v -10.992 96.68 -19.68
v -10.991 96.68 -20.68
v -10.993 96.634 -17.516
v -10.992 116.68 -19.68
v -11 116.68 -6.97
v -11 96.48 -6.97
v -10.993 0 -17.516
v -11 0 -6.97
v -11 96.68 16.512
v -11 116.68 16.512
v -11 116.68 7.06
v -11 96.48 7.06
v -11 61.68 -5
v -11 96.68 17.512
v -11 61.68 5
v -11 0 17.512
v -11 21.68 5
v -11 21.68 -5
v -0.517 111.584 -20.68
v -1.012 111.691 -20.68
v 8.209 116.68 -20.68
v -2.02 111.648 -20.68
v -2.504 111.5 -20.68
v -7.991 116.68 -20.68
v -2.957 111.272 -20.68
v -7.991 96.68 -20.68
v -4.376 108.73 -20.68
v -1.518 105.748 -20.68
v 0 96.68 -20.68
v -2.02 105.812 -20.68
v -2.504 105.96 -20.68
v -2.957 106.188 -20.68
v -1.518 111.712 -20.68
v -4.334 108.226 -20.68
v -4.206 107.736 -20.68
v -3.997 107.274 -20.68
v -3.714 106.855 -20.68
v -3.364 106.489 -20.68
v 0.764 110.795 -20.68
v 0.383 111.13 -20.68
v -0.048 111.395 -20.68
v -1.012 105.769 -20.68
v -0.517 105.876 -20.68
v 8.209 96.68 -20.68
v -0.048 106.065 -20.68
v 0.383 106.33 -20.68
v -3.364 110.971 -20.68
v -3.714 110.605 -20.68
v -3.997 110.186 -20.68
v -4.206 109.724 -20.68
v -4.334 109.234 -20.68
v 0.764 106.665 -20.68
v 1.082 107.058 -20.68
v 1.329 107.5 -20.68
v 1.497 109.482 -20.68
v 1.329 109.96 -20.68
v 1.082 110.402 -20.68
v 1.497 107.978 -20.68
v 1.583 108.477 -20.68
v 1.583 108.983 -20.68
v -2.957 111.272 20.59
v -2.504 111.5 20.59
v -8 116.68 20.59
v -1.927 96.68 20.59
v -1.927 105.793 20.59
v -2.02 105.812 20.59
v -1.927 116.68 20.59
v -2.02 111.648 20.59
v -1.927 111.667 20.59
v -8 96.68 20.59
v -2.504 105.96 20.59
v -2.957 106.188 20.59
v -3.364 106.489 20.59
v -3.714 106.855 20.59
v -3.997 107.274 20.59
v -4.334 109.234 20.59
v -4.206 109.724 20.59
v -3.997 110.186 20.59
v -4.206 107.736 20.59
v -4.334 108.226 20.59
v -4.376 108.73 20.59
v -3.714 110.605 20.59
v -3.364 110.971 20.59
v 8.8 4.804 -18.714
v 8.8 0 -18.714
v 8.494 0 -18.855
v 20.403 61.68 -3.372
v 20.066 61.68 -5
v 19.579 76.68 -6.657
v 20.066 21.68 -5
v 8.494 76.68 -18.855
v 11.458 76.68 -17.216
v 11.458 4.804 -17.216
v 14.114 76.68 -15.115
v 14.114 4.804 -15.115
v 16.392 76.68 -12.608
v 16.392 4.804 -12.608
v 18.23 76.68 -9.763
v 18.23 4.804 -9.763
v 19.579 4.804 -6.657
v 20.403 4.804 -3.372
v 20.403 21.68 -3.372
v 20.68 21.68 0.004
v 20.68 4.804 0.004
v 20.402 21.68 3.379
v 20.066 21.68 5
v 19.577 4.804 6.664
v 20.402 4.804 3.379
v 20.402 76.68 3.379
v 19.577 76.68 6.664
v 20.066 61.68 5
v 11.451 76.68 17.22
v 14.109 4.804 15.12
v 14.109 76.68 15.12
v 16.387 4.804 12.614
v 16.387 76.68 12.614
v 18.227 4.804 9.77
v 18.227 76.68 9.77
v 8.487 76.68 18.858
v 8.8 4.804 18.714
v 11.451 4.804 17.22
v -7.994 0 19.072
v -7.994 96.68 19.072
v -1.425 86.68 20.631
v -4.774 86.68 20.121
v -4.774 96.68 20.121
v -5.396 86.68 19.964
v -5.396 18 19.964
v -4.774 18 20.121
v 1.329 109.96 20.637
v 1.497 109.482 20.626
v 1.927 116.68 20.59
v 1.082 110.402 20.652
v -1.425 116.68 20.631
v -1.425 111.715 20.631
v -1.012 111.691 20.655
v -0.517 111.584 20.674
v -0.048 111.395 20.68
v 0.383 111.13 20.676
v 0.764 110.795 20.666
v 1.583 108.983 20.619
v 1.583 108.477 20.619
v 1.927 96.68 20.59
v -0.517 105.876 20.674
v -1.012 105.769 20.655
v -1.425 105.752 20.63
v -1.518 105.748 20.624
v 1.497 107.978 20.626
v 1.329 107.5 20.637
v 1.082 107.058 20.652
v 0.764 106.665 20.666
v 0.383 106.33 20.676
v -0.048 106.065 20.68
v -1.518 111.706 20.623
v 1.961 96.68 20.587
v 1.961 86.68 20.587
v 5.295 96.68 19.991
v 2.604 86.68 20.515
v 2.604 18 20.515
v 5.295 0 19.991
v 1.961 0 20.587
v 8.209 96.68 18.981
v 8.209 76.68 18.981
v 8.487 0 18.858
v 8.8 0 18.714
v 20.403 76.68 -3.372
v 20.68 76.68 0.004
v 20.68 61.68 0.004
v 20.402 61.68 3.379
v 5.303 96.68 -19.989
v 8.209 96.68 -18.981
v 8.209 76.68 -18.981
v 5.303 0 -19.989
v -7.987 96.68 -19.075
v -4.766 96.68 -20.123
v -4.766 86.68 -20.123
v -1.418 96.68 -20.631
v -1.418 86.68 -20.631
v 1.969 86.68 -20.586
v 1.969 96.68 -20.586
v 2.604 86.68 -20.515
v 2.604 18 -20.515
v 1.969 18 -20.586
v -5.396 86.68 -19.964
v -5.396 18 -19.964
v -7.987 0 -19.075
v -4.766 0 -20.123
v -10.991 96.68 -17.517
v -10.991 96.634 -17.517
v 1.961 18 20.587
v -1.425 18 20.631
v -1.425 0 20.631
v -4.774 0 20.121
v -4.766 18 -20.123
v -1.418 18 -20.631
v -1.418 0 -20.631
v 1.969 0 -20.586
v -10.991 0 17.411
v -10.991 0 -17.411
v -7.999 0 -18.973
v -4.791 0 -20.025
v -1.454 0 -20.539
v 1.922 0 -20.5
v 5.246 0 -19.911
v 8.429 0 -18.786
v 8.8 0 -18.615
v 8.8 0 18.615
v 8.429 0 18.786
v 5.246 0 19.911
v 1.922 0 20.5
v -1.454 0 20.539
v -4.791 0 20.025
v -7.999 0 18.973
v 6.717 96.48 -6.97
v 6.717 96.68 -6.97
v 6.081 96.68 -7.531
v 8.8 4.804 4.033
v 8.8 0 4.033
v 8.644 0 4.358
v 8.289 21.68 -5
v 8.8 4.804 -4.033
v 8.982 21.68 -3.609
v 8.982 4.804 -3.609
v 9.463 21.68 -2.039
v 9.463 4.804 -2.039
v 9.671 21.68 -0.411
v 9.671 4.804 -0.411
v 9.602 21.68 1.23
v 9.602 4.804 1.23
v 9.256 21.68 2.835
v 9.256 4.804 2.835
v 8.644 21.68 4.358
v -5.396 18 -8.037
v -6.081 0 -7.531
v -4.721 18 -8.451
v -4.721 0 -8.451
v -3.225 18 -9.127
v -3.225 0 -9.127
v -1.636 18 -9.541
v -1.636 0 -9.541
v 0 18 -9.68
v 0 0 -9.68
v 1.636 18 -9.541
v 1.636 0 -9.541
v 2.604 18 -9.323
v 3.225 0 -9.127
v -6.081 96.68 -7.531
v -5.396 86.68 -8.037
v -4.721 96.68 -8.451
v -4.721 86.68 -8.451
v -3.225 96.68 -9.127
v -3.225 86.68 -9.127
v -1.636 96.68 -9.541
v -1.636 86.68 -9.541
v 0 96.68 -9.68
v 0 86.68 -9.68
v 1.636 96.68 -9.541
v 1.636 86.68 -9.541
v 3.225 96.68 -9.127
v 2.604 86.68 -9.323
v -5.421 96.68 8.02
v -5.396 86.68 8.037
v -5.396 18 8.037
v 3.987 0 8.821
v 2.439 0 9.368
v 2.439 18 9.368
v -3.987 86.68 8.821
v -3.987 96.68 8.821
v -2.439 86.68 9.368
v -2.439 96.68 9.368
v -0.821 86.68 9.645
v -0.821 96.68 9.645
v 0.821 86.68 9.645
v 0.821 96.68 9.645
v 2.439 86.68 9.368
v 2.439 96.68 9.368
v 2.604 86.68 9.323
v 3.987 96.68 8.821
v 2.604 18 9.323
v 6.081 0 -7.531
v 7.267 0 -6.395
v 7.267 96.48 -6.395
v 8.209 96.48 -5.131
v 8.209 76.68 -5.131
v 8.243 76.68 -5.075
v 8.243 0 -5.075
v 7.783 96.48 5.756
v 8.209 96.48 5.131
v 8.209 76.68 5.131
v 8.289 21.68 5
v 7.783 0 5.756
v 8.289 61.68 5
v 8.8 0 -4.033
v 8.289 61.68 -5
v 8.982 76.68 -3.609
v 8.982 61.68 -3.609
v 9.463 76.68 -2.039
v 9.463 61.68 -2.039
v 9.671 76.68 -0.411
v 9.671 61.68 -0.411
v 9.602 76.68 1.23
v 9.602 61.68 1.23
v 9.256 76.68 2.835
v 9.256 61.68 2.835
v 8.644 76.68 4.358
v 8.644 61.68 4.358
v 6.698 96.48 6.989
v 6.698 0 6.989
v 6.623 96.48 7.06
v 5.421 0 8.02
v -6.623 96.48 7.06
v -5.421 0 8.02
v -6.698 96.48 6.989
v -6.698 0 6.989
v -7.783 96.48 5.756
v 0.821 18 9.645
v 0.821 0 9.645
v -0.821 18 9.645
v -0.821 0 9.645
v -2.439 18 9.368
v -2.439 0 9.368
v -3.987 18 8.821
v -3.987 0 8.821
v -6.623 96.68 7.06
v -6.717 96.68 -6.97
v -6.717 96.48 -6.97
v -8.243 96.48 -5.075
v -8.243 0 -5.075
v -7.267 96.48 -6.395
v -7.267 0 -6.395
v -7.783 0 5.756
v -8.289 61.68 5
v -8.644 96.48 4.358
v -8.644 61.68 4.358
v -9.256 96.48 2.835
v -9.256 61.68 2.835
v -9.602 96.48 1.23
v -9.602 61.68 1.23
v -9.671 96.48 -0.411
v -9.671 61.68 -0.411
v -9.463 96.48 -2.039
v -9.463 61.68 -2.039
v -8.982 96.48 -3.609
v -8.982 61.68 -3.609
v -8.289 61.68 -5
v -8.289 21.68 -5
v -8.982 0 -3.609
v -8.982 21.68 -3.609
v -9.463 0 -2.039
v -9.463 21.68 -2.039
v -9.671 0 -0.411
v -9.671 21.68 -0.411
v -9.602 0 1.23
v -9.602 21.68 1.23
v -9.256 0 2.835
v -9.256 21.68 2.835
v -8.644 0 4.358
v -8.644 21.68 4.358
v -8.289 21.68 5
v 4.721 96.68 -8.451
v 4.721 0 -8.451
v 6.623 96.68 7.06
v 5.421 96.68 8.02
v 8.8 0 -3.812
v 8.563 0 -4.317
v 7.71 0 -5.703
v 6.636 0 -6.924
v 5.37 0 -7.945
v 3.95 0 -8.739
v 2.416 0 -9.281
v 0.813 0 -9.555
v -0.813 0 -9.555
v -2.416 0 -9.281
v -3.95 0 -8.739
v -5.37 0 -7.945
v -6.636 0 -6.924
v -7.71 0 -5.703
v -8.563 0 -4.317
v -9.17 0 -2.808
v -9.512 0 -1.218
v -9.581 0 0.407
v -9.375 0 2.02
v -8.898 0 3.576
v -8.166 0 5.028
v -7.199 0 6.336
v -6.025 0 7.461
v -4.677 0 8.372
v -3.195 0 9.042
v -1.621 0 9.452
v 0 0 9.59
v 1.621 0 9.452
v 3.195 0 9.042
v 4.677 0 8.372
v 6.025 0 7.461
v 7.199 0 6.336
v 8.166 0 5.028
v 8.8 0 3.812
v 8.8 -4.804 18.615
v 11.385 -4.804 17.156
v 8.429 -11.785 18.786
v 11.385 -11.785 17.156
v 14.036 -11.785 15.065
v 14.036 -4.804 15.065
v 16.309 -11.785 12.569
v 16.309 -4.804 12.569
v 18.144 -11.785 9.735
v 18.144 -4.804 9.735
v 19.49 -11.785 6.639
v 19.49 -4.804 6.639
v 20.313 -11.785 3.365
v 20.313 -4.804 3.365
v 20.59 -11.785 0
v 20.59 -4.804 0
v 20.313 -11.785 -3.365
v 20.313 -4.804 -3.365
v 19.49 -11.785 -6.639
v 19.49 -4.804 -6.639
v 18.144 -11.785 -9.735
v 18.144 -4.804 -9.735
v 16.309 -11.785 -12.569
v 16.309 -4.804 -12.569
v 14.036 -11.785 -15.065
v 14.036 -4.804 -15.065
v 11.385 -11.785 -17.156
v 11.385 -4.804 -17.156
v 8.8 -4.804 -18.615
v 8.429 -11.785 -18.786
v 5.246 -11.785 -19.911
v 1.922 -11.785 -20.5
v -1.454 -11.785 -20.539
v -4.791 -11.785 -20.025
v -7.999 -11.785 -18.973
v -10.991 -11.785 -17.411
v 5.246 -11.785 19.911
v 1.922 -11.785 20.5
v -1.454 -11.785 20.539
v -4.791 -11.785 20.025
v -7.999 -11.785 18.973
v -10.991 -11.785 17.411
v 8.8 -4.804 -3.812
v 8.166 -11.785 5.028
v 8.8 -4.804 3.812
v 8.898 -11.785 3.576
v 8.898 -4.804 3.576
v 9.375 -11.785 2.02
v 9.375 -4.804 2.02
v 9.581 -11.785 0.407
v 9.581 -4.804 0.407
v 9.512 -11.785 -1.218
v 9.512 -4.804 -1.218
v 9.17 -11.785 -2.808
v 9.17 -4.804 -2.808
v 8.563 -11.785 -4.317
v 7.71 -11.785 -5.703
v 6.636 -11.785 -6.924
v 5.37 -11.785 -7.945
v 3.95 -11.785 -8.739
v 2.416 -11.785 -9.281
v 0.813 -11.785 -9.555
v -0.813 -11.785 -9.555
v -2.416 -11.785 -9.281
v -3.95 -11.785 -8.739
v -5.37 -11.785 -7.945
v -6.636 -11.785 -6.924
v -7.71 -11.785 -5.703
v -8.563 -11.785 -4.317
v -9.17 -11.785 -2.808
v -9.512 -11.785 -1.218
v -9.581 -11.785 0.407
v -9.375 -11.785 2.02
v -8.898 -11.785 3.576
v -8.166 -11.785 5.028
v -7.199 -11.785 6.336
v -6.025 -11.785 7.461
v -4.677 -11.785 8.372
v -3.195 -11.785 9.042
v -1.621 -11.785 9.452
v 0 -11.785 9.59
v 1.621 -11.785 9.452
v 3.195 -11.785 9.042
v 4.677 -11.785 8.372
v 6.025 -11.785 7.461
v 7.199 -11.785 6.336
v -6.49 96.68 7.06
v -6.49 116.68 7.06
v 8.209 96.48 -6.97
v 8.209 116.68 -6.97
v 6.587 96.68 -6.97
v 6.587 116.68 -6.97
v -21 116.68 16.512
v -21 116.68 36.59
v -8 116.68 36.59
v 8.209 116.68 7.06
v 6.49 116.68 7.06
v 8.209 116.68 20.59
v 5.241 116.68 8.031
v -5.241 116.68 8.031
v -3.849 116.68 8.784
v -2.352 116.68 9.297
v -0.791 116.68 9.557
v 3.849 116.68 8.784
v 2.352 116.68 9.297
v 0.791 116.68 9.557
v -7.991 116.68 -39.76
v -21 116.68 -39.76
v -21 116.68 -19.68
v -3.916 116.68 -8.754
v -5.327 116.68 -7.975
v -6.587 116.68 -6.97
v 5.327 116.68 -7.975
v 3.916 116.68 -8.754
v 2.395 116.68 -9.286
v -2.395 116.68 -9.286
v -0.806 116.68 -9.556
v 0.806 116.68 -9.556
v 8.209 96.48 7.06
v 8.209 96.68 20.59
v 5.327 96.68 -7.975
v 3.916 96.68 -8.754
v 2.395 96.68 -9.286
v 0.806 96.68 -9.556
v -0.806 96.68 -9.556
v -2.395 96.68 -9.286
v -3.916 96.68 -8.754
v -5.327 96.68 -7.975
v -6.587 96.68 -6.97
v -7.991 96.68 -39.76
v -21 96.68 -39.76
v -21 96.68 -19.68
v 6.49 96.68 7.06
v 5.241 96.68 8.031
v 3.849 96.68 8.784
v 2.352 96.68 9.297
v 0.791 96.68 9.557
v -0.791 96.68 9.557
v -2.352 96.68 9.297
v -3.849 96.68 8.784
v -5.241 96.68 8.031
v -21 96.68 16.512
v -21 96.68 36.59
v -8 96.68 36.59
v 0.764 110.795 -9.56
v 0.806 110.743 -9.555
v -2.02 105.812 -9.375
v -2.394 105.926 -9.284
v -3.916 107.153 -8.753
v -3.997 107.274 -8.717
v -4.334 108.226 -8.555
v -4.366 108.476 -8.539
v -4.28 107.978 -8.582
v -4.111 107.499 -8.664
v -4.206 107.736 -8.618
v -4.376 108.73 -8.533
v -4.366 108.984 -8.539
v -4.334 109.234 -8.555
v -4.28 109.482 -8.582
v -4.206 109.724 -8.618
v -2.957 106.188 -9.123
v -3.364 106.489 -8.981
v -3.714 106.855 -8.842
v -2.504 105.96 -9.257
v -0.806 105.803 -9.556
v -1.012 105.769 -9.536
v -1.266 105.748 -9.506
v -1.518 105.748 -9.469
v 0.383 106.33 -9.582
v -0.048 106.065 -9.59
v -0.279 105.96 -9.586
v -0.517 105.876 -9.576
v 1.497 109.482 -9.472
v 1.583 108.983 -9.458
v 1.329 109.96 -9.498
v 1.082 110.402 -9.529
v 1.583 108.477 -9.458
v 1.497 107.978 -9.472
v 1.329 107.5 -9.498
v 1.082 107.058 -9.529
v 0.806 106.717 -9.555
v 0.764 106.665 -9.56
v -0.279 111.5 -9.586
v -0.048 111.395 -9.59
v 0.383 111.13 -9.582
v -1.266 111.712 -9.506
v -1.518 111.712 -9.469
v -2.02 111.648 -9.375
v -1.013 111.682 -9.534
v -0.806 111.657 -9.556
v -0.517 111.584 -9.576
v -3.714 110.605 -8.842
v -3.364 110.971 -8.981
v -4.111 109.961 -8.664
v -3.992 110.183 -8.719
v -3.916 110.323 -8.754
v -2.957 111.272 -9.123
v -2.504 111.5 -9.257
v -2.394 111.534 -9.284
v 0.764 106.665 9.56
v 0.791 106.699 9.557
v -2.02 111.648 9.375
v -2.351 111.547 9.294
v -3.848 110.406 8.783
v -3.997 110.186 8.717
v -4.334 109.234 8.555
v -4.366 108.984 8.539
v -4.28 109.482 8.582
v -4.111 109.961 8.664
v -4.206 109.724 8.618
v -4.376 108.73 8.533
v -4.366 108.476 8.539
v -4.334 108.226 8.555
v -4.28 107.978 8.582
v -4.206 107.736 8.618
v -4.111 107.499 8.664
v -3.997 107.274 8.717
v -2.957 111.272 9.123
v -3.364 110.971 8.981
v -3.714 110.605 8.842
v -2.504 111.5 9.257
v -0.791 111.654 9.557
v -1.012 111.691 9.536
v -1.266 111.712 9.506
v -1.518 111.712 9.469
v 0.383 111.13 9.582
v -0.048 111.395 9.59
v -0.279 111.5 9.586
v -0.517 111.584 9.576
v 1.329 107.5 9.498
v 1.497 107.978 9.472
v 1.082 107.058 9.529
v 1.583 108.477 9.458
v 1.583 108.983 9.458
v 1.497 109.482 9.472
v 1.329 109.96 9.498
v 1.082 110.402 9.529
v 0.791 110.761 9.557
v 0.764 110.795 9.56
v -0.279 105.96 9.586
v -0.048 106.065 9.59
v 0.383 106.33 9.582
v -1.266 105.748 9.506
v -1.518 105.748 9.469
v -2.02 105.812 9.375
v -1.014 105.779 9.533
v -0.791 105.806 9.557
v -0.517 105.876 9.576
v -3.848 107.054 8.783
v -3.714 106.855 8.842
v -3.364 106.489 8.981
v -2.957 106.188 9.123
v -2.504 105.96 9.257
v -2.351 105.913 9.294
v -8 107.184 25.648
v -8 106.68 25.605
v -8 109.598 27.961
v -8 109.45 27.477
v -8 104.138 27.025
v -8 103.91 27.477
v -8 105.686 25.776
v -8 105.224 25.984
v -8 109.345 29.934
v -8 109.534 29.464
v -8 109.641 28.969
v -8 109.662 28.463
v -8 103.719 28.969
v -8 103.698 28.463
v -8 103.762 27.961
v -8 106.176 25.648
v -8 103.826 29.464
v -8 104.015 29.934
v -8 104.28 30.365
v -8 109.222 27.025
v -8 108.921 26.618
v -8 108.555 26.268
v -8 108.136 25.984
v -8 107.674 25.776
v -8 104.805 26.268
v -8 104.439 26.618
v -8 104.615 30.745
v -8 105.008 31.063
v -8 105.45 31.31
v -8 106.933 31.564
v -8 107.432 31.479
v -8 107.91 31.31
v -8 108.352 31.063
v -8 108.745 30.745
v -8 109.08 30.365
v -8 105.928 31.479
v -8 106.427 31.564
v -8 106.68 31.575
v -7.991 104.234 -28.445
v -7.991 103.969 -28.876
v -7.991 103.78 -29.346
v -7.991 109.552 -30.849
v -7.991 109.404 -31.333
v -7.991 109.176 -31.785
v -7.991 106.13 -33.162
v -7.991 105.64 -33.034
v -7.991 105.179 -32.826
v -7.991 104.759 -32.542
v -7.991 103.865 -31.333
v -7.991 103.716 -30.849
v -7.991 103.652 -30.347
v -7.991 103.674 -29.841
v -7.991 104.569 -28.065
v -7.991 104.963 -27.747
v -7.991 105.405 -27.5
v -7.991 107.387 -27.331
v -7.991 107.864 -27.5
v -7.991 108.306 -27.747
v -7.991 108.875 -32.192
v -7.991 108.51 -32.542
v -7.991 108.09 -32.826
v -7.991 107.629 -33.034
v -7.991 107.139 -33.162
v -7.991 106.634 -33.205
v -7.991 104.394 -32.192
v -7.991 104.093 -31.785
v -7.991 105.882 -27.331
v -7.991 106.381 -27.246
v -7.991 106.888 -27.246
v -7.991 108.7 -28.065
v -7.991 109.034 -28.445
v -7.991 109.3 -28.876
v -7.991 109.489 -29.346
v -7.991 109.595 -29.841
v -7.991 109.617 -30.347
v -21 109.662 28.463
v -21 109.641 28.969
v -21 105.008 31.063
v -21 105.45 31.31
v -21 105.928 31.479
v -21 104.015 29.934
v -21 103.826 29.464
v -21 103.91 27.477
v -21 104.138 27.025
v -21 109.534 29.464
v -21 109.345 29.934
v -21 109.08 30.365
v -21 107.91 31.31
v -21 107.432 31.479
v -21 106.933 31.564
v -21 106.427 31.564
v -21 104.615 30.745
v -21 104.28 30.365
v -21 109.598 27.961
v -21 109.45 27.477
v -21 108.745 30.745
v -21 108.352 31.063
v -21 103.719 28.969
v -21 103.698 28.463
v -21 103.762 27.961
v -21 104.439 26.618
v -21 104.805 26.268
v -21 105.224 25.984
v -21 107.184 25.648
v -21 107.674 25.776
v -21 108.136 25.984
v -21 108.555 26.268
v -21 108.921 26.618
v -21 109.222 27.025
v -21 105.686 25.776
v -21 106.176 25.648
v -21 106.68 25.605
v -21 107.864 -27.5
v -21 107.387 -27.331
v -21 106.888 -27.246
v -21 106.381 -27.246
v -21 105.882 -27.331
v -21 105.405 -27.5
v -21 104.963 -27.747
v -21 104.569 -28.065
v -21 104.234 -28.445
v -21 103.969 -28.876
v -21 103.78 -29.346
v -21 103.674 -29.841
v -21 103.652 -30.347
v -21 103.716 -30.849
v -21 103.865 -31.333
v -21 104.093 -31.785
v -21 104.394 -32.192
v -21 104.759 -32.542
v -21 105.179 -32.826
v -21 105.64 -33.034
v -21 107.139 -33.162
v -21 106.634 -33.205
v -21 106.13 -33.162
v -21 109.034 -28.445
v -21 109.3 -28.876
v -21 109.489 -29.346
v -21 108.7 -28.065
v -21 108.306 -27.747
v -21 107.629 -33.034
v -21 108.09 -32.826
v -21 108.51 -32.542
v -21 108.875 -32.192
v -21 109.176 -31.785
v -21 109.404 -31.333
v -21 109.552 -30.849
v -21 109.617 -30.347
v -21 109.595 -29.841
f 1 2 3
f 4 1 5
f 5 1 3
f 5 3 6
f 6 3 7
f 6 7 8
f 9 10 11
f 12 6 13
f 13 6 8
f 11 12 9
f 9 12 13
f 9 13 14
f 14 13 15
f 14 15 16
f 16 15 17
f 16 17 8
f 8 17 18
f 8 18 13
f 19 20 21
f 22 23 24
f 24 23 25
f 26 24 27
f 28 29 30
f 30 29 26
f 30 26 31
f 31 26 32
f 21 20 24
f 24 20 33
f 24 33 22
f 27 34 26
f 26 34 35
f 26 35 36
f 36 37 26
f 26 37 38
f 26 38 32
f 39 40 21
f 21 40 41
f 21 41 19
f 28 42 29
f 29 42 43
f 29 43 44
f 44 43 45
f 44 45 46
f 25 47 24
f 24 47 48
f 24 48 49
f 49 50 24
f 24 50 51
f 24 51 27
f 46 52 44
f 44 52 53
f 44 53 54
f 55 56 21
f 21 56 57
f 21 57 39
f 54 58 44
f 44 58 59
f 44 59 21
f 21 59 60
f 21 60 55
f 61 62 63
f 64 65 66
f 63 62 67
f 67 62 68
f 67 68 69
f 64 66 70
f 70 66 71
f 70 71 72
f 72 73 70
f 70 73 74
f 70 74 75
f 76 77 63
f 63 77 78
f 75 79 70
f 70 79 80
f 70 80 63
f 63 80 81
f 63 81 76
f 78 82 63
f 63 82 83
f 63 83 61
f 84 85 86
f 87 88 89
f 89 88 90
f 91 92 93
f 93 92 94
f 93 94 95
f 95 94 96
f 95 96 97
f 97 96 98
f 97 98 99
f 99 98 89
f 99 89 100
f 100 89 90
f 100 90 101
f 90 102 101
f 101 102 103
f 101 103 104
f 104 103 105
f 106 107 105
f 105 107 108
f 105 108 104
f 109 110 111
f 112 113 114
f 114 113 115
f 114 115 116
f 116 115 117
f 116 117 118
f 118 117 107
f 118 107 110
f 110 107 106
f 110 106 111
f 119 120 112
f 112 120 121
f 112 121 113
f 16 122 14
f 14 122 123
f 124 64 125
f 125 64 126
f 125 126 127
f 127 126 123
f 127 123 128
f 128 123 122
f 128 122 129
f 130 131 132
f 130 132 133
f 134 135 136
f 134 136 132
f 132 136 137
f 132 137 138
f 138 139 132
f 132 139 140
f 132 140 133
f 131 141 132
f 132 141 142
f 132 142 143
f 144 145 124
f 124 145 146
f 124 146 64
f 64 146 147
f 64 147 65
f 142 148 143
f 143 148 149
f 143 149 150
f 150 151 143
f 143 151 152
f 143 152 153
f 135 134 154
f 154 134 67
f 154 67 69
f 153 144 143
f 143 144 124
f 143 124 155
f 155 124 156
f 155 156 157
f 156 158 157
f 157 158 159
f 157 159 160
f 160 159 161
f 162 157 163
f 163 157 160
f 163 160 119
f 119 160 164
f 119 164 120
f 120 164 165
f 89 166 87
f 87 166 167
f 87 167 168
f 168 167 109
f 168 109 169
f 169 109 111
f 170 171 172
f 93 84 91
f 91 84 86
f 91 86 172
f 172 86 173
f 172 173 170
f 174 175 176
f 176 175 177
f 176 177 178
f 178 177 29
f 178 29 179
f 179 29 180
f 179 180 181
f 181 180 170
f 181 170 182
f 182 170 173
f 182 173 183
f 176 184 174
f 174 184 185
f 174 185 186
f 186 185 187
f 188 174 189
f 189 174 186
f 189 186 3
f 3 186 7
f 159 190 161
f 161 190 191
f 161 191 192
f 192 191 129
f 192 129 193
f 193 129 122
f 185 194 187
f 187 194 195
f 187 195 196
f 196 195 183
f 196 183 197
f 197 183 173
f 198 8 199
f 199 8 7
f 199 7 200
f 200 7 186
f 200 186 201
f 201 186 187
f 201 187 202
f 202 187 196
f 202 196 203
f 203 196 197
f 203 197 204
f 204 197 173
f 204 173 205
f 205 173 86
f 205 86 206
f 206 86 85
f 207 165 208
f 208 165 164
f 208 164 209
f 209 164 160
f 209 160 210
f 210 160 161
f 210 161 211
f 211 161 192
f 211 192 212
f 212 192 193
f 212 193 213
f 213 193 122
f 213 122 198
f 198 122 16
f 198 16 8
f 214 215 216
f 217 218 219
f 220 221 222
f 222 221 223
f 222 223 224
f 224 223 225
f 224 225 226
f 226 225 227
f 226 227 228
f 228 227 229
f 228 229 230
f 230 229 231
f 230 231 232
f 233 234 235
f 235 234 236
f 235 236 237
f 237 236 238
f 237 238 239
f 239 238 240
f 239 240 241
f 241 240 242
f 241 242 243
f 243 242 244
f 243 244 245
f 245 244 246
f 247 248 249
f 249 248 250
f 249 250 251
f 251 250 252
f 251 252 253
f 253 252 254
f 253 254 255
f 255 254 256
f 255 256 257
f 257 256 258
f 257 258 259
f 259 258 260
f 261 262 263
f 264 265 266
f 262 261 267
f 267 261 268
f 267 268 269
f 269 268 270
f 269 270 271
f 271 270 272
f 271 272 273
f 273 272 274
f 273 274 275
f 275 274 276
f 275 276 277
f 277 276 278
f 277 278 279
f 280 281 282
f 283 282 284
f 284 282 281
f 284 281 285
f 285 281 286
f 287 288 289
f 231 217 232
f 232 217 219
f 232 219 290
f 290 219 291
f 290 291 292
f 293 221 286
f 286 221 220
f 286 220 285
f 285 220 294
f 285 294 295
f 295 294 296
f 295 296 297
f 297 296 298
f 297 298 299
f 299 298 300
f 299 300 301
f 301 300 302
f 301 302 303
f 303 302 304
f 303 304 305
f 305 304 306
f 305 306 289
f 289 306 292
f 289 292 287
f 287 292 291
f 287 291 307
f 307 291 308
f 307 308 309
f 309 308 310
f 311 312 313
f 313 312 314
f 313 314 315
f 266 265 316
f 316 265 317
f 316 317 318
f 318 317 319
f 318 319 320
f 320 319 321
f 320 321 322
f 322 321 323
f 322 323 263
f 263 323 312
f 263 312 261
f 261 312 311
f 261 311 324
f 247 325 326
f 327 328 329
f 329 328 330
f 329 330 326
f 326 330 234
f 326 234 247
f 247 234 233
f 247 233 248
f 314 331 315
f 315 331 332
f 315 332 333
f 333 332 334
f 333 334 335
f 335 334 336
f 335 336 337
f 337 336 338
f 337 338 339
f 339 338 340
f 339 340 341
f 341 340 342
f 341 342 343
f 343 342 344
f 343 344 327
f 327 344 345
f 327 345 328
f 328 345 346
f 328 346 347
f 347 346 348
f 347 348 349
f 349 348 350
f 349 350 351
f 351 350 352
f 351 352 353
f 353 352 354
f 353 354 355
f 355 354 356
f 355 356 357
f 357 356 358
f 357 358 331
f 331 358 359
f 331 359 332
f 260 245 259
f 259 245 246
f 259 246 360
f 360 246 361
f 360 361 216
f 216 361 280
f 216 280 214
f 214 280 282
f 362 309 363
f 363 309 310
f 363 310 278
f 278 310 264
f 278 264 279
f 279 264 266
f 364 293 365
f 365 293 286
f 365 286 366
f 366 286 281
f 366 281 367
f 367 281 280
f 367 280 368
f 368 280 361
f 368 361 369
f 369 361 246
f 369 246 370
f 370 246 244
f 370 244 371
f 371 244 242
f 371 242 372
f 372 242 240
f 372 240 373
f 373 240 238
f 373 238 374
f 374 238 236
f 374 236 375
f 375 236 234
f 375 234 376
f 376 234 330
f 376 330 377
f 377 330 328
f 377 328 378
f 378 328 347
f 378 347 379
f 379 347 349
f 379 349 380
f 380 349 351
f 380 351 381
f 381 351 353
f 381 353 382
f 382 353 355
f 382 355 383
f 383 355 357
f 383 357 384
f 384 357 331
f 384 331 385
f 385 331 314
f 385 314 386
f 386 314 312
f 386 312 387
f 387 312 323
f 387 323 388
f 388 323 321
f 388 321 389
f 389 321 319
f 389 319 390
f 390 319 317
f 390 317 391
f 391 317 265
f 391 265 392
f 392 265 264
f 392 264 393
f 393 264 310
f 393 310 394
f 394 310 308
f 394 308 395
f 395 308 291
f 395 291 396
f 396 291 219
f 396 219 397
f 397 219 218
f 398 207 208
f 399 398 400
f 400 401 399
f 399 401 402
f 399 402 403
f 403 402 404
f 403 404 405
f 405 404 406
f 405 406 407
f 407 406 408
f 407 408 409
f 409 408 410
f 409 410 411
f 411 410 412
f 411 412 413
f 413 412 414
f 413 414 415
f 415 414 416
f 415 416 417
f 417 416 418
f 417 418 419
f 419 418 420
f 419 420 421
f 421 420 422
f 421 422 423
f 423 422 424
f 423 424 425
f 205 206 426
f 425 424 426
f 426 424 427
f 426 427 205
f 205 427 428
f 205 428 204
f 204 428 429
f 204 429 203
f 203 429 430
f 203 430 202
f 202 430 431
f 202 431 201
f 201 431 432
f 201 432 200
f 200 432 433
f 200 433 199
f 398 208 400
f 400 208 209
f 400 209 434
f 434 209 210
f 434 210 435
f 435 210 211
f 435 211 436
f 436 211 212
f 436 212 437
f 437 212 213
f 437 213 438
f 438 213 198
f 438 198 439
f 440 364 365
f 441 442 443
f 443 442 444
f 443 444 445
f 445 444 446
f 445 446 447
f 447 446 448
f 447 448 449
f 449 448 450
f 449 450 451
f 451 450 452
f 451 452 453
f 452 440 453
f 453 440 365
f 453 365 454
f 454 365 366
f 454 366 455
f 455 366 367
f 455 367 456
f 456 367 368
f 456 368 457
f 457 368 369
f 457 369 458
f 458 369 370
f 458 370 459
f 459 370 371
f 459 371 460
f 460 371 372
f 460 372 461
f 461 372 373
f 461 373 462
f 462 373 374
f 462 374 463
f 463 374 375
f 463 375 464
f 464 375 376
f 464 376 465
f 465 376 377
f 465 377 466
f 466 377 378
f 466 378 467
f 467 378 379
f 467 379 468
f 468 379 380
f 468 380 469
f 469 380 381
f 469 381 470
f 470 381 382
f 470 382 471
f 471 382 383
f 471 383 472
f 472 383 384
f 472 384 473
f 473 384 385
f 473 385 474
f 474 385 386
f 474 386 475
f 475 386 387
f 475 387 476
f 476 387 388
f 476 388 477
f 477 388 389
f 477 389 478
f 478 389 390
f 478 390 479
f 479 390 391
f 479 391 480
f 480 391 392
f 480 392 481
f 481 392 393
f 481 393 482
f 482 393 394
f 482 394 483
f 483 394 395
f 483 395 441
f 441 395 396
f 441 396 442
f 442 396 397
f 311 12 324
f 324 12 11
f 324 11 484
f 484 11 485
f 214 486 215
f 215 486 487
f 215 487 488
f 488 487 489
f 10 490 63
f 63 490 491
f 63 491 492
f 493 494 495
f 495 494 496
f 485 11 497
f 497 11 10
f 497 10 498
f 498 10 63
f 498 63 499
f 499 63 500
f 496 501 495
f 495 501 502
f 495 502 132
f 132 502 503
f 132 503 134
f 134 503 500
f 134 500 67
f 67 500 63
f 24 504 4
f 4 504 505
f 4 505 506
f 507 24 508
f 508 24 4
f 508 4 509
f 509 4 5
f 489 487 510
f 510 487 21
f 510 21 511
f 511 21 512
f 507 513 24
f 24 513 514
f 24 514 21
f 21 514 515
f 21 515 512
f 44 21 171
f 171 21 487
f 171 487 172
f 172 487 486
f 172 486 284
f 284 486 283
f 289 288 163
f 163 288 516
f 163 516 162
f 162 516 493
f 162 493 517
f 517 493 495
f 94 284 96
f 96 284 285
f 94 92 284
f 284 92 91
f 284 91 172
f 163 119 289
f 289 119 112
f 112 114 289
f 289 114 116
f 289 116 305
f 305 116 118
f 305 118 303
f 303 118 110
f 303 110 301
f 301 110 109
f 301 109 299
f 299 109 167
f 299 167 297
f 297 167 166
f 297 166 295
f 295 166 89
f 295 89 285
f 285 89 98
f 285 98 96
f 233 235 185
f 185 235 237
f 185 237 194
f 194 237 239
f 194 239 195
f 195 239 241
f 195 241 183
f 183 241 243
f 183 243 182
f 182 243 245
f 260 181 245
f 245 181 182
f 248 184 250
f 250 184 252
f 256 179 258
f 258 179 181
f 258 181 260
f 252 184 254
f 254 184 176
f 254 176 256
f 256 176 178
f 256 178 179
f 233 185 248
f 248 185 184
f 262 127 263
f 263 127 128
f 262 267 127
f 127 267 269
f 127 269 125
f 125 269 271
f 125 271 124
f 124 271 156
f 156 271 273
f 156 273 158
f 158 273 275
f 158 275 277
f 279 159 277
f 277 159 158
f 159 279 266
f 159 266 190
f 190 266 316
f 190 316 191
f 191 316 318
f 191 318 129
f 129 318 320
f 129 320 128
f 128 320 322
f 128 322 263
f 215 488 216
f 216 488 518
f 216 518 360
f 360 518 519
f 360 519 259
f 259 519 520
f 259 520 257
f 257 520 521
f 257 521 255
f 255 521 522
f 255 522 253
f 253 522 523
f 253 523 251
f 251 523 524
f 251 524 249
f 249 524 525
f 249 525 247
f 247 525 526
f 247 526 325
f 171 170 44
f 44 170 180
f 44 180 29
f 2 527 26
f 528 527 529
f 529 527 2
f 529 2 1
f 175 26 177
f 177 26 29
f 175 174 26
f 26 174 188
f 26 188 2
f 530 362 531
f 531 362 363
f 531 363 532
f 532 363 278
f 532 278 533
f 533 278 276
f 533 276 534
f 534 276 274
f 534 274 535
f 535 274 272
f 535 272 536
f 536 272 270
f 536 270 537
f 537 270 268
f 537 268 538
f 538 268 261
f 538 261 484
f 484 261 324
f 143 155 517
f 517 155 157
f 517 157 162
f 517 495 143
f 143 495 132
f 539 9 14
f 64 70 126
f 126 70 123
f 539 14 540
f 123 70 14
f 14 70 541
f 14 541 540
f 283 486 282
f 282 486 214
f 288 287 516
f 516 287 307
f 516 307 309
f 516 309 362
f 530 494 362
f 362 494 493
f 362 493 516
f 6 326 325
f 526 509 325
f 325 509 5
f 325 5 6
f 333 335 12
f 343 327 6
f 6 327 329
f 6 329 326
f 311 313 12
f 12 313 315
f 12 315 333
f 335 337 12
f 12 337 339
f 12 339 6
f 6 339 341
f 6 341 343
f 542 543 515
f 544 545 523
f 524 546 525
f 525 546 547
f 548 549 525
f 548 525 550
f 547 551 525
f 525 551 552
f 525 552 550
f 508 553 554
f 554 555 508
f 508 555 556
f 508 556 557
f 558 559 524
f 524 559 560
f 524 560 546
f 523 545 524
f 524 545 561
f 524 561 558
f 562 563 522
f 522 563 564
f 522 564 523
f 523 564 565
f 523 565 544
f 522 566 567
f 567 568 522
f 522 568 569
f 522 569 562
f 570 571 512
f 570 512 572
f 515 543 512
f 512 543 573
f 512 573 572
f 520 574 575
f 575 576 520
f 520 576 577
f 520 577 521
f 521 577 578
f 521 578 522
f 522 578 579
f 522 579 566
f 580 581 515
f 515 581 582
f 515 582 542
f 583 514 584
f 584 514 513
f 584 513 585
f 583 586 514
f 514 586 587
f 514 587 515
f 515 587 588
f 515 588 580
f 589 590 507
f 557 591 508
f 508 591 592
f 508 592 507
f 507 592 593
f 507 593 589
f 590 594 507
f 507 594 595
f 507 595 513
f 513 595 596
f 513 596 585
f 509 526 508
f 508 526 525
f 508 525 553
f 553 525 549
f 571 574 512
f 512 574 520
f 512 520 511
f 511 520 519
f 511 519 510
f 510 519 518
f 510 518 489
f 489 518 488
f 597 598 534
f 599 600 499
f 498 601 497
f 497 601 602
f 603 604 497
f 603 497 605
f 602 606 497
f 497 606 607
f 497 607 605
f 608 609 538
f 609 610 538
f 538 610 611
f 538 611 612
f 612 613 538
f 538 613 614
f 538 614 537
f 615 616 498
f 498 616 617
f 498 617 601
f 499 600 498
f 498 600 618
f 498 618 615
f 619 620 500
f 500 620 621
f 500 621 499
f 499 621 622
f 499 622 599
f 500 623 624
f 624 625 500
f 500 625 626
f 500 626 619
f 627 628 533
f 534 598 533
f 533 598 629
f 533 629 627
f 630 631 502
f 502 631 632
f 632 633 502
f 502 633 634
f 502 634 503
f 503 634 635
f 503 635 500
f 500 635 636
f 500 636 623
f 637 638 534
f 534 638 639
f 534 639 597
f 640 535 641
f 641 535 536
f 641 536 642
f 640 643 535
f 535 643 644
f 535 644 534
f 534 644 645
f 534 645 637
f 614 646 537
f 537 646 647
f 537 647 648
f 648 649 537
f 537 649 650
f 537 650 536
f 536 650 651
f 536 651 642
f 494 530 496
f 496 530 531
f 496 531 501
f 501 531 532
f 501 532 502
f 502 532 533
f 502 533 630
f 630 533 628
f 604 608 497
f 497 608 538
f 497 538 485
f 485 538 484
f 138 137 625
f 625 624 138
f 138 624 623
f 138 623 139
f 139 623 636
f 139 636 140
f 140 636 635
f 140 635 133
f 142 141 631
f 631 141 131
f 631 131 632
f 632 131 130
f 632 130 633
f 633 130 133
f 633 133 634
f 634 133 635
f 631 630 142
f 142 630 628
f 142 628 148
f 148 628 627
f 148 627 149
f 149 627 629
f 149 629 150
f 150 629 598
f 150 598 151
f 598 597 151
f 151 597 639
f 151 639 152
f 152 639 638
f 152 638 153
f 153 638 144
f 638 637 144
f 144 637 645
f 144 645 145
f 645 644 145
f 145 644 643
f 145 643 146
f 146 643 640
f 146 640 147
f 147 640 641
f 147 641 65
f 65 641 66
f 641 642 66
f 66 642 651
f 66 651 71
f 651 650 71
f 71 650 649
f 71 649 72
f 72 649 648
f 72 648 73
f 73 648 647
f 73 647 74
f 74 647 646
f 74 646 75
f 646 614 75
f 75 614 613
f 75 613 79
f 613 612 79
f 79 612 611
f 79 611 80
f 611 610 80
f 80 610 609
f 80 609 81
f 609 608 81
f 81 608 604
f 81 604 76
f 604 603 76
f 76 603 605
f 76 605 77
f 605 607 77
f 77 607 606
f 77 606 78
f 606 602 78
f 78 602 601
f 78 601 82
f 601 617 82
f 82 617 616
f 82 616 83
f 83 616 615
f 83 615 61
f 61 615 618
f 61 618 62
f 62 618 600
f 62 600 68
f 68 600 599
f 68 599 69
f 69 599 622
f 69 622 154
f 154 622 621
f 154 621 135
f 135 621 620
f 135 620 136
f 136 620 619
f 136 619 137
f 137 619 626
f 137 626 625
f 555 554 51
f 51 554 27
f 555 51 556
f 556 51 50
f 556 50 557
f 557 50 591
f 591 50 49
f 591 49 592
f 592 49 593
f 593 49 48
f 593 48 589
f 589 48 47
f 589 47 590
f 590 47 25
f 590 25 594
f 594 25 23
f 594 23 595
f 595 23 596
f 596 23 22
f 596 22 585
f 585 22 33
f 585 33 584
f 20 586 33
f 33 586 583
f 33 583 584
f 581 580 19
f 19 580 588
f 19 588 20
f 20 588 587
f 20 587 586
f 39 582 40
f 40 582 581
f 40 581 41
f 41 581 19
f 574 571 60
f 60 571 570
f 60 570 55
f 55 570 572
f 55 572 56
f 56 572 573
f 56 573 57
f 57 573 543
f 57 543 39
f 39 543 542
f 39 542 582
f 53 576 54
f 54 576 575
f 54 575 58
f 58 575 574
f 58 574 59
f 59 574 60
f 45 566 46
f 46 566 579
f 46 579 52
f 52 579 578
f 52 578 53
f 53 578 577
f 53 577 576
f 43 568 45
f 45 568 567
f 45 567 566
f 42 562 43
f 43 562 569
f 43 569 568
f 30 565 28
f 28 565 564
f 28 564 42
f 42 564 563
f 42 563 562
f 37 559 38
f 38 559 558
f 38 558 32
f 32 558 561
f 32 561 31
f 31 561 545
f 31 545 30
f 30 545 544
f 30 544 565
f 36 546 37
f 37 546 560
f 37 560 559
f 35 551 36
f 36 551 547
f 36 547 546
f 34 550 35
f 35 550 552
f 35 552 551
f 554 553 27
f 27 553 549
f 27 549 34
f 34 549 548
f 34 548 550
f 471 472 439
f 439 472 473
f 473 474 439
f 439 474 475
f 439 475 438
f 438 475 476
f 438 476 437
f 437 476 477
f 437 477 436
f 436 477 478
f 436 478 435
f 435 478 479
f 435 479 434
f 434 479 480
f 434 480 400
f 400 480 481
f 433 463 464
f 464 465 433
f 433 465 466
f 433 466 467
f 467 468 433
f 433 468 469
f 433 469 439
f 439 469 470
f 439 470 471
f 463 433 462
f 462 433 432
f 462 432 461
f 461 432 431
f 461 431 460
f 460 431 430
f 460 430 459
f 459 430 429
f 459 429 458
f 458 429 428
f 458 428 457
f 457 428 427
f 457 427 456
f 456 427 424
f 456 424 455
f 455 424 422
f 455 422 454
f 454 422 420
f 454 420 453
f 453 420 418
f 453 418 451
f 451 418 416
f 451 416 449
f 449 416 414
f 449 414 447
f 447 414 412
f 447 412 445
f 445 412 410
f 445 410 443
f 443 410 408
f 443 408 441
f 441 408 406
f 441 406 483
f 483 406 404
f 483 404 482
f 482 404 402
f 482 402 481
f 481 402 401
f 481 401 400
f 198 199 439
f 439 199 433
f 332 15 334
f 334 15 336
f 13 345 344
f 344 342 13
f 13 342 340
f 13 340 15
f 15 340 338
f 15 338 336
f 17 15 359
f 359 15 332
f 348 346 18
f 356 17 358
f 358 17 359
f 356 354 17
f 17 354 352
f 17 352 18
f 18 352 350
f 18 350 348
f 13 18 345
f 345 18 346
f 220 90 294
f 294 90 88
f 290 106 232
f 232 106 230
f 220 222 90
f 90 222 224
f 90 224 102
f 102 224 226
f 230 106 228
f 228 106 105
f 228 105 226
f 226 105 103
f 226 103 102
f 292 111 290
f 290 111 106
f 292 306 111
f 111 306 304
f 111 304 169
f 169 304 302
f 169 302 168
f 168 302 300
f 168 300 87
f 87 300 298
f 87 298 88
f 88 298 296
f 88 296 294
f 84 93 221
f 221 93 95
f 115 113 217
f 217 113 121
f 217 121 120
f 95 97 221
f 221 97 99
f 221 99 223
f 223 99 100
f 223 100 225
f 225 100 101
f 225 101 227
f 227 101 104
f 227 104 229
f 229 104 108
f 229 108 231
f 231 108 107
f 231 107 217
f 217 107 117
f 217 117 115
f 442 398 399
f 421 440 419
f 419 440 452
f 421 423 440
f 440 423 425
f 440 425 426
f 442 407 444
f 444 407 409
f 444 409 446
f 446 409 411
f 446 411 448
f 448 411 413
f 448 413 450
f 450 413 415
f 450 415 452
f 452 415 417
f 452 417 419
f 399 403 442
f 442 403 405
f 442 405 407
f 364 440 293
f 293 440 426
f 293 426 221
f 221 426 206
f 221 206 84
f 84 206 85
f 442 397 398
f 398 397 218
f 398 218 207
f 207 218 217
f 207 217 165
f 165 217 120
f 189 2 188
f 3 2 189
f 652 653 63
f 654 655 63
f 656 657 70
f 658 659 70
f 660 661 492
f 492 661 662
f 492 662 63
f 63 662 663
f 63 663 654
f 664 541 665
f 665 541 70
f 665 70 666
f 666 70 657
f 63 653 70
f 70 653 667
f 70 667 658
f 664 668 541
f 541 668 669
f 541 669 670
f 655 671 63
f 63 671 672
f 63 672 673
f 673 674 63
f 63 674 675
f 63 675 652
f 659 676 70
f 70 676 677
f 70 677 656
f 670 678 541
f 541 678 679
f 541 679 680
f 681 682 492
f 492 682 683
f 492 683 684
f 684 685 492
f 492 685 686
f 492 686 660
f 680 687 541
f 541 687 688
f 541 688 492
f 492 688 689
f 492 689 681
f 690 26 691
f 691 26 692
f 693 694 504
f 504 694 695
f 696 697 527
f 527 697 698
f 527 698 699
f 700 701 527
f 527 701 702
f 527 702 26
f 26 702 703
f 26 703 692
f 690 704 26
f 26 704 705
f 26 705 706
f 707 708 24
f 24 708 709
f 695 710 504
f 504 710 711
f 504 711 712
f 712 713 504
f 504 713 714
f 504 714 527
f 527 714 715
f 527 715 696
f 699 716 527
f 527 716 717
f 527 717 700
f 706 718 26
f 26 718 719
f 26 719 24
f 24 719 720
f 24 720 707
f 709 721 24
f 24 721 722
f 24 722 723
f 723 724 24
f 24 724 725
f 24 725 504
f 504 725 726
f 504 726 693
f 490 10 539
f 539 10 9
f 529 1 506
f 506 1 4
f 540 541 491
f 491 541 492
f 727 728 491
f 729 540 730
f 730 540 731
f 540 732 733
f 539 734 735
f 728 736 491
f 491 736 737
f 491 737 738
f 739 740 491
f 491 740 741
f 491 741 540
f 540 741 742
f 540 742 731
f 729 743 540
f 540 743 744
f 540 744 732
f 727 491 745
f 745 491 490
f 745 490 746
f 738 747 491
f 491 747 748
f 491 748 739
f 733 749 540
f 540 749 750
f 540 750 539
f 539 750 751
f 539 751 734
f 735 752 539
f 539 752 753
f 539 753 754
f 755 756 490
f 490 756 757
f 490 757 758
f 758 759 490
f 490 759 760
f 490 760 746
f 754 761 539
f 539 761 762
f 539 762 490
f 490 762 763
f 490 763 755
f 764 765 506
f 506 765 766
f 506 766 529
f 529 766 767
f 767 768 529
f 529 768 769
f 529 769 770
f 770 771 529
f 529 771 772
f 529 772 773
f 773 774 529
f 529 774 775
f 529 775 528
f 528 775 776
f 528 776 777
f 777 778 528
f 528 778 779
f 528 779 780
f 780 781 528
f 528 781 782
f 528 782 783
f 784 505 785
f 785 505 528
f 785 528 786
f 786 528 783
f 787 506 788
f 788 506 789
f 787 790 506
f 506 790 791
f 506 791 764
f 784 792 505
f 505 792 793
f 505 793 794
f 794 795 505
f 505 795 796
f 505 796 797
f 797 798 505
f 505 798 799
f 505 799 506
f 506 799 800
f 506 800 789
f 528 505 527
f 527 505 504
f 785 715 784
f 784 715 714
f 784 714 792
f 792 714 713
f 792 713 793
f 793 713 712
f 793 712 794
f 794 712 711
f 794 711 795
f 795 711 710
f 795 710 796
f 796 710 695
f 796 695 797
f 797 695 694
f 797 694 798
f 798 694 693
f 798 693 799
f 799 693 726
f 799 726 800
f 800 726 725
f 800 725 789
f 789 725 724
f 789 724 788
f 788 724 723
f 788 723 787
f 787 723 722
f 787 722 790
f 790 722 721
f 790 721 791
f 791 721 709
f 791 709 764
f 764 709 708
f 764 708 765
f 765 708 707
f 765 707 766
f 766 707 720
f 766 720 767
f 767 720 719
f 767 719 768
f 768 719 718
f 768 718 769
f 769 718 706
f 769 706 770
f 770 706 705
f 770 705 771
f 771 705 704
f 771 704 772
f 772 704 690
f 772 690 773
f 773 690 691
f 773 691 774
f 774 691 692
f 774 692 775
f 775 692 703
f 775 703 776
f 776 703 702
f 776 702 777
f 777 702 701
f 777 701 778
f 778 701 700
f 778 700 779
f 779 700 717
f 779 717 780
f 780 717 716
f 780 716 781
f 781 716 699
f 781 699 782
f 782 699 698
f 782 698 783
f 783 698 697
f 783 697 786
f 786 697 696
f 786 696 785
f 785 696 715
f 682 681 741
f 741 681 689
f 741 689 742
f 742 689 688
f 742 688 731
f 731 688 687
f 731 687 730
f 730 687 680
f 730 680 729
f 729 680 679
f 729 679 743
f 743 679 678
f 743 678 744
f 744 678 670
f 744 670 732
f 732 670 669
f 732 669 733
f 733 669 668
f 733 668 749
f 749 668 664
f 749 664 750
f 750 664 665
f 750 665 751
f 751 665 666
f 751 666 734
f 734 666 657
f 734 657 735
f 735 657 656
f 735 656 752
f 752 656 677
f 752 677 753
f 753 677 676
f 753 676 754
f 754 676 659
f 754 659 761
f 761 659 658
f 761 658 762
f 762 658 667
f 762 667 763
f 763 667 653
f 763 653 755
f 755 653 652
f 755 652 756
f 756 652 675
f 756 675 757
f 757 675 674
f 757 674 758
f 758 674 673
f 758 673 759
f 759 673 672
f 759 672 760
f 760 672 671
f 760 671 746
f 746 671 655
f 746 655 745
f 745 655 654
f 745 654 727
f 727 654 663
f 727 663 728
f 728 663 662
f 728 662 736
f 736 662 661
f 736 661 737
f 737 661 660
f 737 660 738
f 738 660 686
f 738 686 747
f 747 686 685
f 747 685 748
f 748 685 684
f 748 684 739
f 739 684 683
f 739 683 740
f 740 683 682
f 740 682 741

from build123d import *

# Parameters (mm, degrees)
SKETCH_1_R           = 20.68
SKETCH_1_R_2         = 9.68
EXTRUDE_1_DEPTH      = 116.68
SKETCH_11_W          = 27
SKETCH_11_H          = 150
CUT_EXTRUDE_3_DEPTH  = 40
SKETCH_13_W          = 10
SKETCH_13_H          = 128.345013401
CUT_EXTRUDE_7_DEPTH  = 126.614916312
SKETCH_15_W          = 8
SKETCH_15_H          = 68.68
CUT_EXTRUDE_9_DEPTH  = 48
SKETCH_16_W          = 15.549431524
SKETCH_16_H          = 20
SKETCH_16_W_2        = 15.459431524
EXTRUDE_4_DEPTH      = 19.2
SKETCH_17_W          = 19.20851187
SKETCH_17_H          = 14.03
CUT_EXTRUDE_10_DEPTH = 20.2
SKETCH_18_R          = 9.59
CUT_EXTRUDE_11_DEPTH = 121.289430957
SKETCH_21_R          = 2.985
CUT_EXTRUDE_12_DEPTH = 55.2
EXTRUDE_START        = 55.2
SKETCH_24_R          = 20.59
SKETCH_24_R_2        = 9.59
EXTRUDE_2_DEPTH      = 55.2
CUT_EXTRUDE_13_DEPTH = 55.2
SKETCH_26_W          = 10.00851187
SKETCH_26_H          = 41.68
CUT_EXTRUDE_15_DEPTH = 55.2
SKETCH_27_W          = 10
SKETCH_27_H          = 40
CUT_EXTRUDE_16_DEPTH = 55.2
SKETCH_28_W          = 44.880694938
SKETCH_28_H          = 9.608044066
CUT_EXTRUDE_17_DEPTH = 12.2
SKETCH_35_W          = 13.53
SKETCH_35_H          = 20
EXTRUDE_10_DEPTH     = 15
EXTRUDE_11_DEPTH     = 15
SKETCH_37_W          = 9
SKETCH_37_H          = 20
EXTRUDE_12_DEPTH     = 20
SKETCH_38_W          = 9
SKETCH_38_H          = 20
EXTRUDE_13_DEPTH     = 20
SKETCH_42_R          = 2.985
CUT_EXTRUDE_21_DEPTH = 20
CUT_EXTRUDE_23_DEPTH = 138.235841092
SKETCH_45_W          = 3
SKETCH_45_H          = 20
EXTRUDE_14_DEPTH     = 30
SKETCH_46_W          = 3
SKETCH_46_H          = 20
EXTRUDE_15_DEPTH     = 30
SKETCH_47_W          = 33.078221107
SKETCH_47_H          = 20
EXTRUDE_16_DEPTH     = 50
SKETCH_48_W          = 30
SKETCH_48_H          = 20
EXTRUDE_17_DEPTH     = 50
SKETCH_50_W          = 50
SKETCH_50_H          = 20
EXTRUDE_18_DEPTH     = 1
SKETCH_51_W          = 50
SKETCH_51_H          = 20
EXTRUDE_19_DEPTH     = 1
SKETCH_52_W          = 53
SKETCH_52_H          = 14
CUT_EXTRUDE_24_DEPTH = 151.972575738
SKETCH_53_W          = 53
SKETCH_53_H          = 14
CUT_EXTRUDE_25_DEPTH = 151.942387436
SKETCH_54_W          = 40
SKETCH_54_H          = 73.27
CUT_EXTRUDE_26_DEPTH = 147.866192927
SKETCH_56_W          = 13.00851187
SKETCH_56_H          = 20
EXTRUDE_21_DEPTH     = 3.08
SKETCH_57_R          = 2.985
CUT_EXTRUDE_27_DEPTH = 127.558817396


with BuildPart() as part:
    # 草圖1 → 伸長-薄件1 (new body)
    with BuildSketch(Plane(origin=(0, 0, 0), x_dir=(1, 0, 0), z_dir=(0, 1, 0))):
        Circle(SKETCH_1_R)
        Circle(SKETCH_1_R_2, mode=Mode.SUBTRACT)
    extrude(amount=EXTRUDE_1_DEPTH)

    # 草圖11 → 除料-伸長3 (cut)
    with BuildSketch(Plane(origin=(0, 116.68, 0), x_dir=(1, 0, 0), z_dir=(0, 1, 0))):
        with Locations((21.70851187, -44.235815192)):
            Rectangle(SKETCH_11_W, SKETCH_11_H)
    extrude(amount=-CUT_EXTRUDE_3_DEPTH, mode=Mode.SUBTRACT)

    # 草圖13 → 除料-伸長7 (cut, through all)
    with BuildSketch(Plane.XY.offset(21)):
        with Locations((-16, 58.612182466)):
            Rectangle(SKETCH_13_W, SKETCH_13_H)
    extrude(amount=-CUT_EXTRUDE_7_DEPTH, mode=Mode.SUBTRACT)

    # 草圖15 → 除料-伸長9 (cut)
    with BuildSketch(Plane.XY.offset(21)):
        with Locations((-1.395744065, 52.34)):
            Rectangle(SKETCH_15_W, SKETCH_15_H)
    extrude(amount=-CUT_EXTRUDE_9_DEPTH, mode=Mode.SUBTRACT)

    # 草圖16 → 填料-伸長4 (add)
    with BuildSketch(Plane(origin=(8.20851187, 0, 0), x_dir=(0, 0, -1), z_dir=(1, 0, 0))):
        with Locations((12.905284238, 106.68)):
            Rectangle(SKETCH_16_W, SKETCH_16_H)
        with Locations((-12.860284238, 106.68)):
            Rectangle(SKETCH_16_W_2, SKETCH_16_H)
    extrude(amount=-EXTRUDE_4_DEPTH)

    # 草圖17 → 除料-伸長10 (cut)
    with BuildSketch(Plane(origin=(0, 116.68, 0), x_dir=(1, 0, 0), z_dir=(0, 1, 0))):
        with Locations((-1.395744065, -0.045)):
            Rectangle(SKETCH_17_W, SKETCH_17_H)
    extrude(amount=-CUT_EXTRUDE_10_DEPTH, mode=Mode.SUBTRACT)

    # 草圖18 → 除料-伸長11 (cut, through all)
    with BuildSketch(Plane.XZ):
        with Locations(Location((0, 0, 0), (0, 0, 90))):
            Circle(SKETCH_18_R)
    extrude(amount=-CUT_EXTRUDE_11_DEPTH, mode=Mode.SUBTRACT)

    # 草圖21 → 除料-伸長12 (cut)
    with BuildSketch(Plane(origin=(0, 0, -20.68), x_dir=(-1, 0, 0), z_dir=(0, 0, -1))):
        with Locations((1.39148813, 108.73)):
            Circle(SKETCH_21_R)
    extrude(amount=-CUT_EXTRUDE_12_DEPTH, mode=Mode.SUBTRACT)

    # 草圖24 → 伸長-薄件2 (add)
    with BuildSketch(Plane.XZ.offset(EXTRUDE_START)):
        Circle(SKETCH_24_R)
        Circle(SKETCH_24_R_2, mode=Mode.SUBTRACT)
    extrude(amount=-EXTRUDE_2_DEPTH)

    # 草圖25 → 除料-伸長13 (cut)
    with BuildSketch(Plane.XY.offset(21)):
        Polygon((-1.39148813, -11.785), (22.612379708, -11.785), (22.612379708, -63.873337429), (-22.749525245, -63.873337429), (-22.749525245, -11.785), align=None)
    extrude(amount=-CUT_EXTRUDE_13_DEPTH, mode=Mode.SUBTRACT)

    # 草圖26 → 除料-伸長15 (cut)
    with BuildSketch(Plane(origin=(0, 0, 0), x_dir=(1, 0, 0), z_dir=(0, 1, 0))):
        with Locations((-15.995744065, -0.16)):
            Rectangle(SKETCH_26_W, SKETCH_26_H)
    extrude(amount=-CUT_EXTRUDE_15_DEPTH, mode=Mode.SUBTRACT)

    # 草圖27 → 除料-伸長16 (cut)
    with BuildSketch(Plane(origin=(21, 0, 0), x_dir=(0, 0, -1), z_dir=(1, 0, 0))):
        with Locations((0, 41.68)):
            Rectangle(SKETCH_27_W, SKETCH_27_H)
    extrude(amount=-CUT_EXTRUDE_16_DEPTH, mode=Mode.SUBTRACT)

    # 草圖28 → 除料-伸長17 (cut)
    with BuildSketch(Plane(origin=(21, 0, 0), x_dir=(0, 0, -1), z_dir=(1, 0, 0))):
        Rectangle(SKETCH_28_W, SKETCH_28_H)
    extrude(amount=-CUT_EXTRUDE_17_DEPTH, mode=Mode.SUBTRACT)

    # 草圖35 → 填料-伸長10 (add)
    with BuildSketch(Plane.ZY.offset(10.99148813)):
        with Locations((13.825, 106.68)):
            Rectangle(SKETCH_35_W, SKETCH_35_H)
    extrude(amount=EXTRUDE_10_DEPTH)

    # 草圖36 → 填料-伸長11 (add)
    with BuildSketch(Plane.ZY.offset(10.99148813)):
        Polygon((-20.68, 116.68), (-6.97, 116.68), (-6.97, 96.48), (-20.68, 96.68), align=None)
    extrude(amount=EXTRUDE_11_DEPTH)

    # 草圖37 → 填料-伸長12 (add)
    with BuildSketch(Plane.XY.offset(20.59)):
        with Locations((-21.49148813, 106.68)):
            Rectangle(SKETCH_37_W, SKETCH_37_H)
    extrude(amount=EXTRUDE_12_DEPTH)

    # 草圖38 → 填料-伸長13 (add)
    with BuildSketch(Plane(origin=(0, 0, -20.68), x_dir=(-1, 0, 0), z_dir=(0, 0, -1))):
        with Locations((21.49148813, 106.68)):
            Rectangle(SKETCH_38_W, SKETCH_38_H)
    extrude(amount=EXTRUDE_13_DEPTH)

    # 草圖42 → 除料-伸長21 (cut)
    with BuildSketch(Plane(origin=(-16.99148813, 0, 0), x_dir=(0, 0, -1), z_dir=(1, 0, 0))):
        with Locations((30.68, 106.554418142)):
            Circle(SKETCH_42_R)
        with Locations((-30.395640125, 106.68)):
            Circle(SKETCH_42_R)
    extrude(amount=-CUT_EXTRUDE_21_DEPTH, mode=Mode.SUBTRACT)

    # 草圖43 → 除料-伸長23 (cut, through all)
    with BuildSketch(Plane(origin=(0, 116.68, 0), x_dir=(1, 0, 0), z_dir=(0, 1, 0))):
        Polygon((-11, 6.97), (-10.99148813, 20.68), (-10.99148813, 48.096794253), (-28.274756234, 48.096794253), (-28.274756234, -43.270506289), (-11, -43.270506289), align=None)
    extrude(amount=-CUT_EXTRUDE_23_DEPTH, mode=Mode.SUBTRACT)

    # 草圖45 → 填料-伸長14 (add)
    with BuildSketch(Plane.XY.offset(20.59)):
        with Locations((-9.5, 106.68)):
            Rectangle(SKETCH_45_W, SKETCH_45_H)
    extrude(amount=EXTRUDE_14_DEPTH)

    # 草圖46 → 填料-伸長15 (add)
    with BuildSketch(Plane(origin=(0, 0, -20.68), x_dir=(-1, 0, 0), z_dir=(0, 0, -1))):
        with Locations((9.49148813, 106.68)):
            Rectangle(SKETCH_46_W, SKETCH_46_H)
    extrude(amount=EXTRUDE_15_DEPTH)

    # 草圖47 → 填料-伸長16 (add)
    with BuildSketch(Plane.ZY.offset(11)):
        with Locations((34.050889447, 106.68)):
            Rectangle(SKETCH_47_W, SKETCH_47_H)
    extrude(amount=EXTRUDE_16_DEPTH)

    # 草圖48 → 填料-伸長17 (add)
    with BuildSketch(Plane.ZY.offset(10.99148813)):
        with Locations((-35.68, 106.68)):
            Rectangle(SKETCH_48_W, SKETCH_48_H)
    extrude(amount=EXTRUDE_17_DEPTH)

    # 草圖50 → 填料-伸長18 (add)
    with BuildSketch(Plane(origin=(0, 0, 17.511778893), x_dir=(-1, 0, 0), z_dir=(0, 0, -1))):
        with Locations((36, 106.68)):
            Rectangle(SKETCH_50_W, SKETCH_50_H)
    extrude(amount=EXTRUDE_18_DEPTH)

    # 草圖51 → 填料-伸長19 (add)
    with BuildSketch(Plane.XY.offset(-20.68)):
        with Locations((-35.99148813, 106.68)):
            Rectangle(SKETCH_51_W, SKETCH_51_H)
    extrude(amount=EXTRUDE_19_DEPTH)

    # 草圖52 → 除料-伸長24 (cut, through all)
    with BuildSketch(Plane(origin=(0, 116.68, 0), x_dir=(1, 0, 0), z_dir=(0, 1, 0))):
        with Locations((-34.49148813, 43.68)):
            Rectangle(SKETCH_52_W, SKETCH_52_H)
    extrude(amount=-CUT_EXTRUDE_24_DEPTH, mode=Mode.SUBTRACT)

    # 草圖53 → 除料-伸長25 (cut, through all)
    with BuildSketch(Plane(origin=(0, 116.68, 0), x_dir=(1, 0, 0), z_dir=(0, 1, 0))):
        with Locations((-34.5, -43.59)):
            Rectangle(SKETCH_53_W, SKETCH_53_H)
    extrude(amount=-CUT_EXTRUDE_25_DEPTH, mode=Mode.SUBTRACT)

    # 草圖54 → 除料-伸長26 (cut, through all)
    with BuildSketch(Plane(origin=(0, 116.68, 0), x_dir=(1, 0, 0), z_dir=(0, 1, 0))):
        with Locations((-41, 0.045)):
            Rectangle(SKETCH_54_W, SKETCH_54_H)
    extrude(amount=-CUT_EXTRUDE_26_DEPTH, mode=Mode.SUBTRACT)

    # 草圖56 → 填料-伸長21 (add)
    with BuildSketch(Plane(origin=(0, 0, -36.68), x_dir=(-1, 0, 0), z_dir=(0, 0, -1))):
        with Locations((14.495744065, 106.68)):
            Rectangle(SKETCH_56_W, SKETCH_56_H)
    extrude(amount=EXTRUDE_21_DEPTH)

    # 草圖57 → 除料-伸長27 (cut, through all)
    with BuildSketch(Plane(origin=(-7.99148813, 0, 0), x_dir=(0, 0, -1), z_dir=(1, 0, 0))):
        with Locations((30.22, 106.634392252)):
            Circle(SKETCH_57_R)
        with Locations((-28.59, 106.68)):
            Circle(SKETCH_57_R)
    extrude(amount=-CUT_EXTRUDE_27_DEPTH, mode=Mode.SUBTRACT)


solid = part.part
